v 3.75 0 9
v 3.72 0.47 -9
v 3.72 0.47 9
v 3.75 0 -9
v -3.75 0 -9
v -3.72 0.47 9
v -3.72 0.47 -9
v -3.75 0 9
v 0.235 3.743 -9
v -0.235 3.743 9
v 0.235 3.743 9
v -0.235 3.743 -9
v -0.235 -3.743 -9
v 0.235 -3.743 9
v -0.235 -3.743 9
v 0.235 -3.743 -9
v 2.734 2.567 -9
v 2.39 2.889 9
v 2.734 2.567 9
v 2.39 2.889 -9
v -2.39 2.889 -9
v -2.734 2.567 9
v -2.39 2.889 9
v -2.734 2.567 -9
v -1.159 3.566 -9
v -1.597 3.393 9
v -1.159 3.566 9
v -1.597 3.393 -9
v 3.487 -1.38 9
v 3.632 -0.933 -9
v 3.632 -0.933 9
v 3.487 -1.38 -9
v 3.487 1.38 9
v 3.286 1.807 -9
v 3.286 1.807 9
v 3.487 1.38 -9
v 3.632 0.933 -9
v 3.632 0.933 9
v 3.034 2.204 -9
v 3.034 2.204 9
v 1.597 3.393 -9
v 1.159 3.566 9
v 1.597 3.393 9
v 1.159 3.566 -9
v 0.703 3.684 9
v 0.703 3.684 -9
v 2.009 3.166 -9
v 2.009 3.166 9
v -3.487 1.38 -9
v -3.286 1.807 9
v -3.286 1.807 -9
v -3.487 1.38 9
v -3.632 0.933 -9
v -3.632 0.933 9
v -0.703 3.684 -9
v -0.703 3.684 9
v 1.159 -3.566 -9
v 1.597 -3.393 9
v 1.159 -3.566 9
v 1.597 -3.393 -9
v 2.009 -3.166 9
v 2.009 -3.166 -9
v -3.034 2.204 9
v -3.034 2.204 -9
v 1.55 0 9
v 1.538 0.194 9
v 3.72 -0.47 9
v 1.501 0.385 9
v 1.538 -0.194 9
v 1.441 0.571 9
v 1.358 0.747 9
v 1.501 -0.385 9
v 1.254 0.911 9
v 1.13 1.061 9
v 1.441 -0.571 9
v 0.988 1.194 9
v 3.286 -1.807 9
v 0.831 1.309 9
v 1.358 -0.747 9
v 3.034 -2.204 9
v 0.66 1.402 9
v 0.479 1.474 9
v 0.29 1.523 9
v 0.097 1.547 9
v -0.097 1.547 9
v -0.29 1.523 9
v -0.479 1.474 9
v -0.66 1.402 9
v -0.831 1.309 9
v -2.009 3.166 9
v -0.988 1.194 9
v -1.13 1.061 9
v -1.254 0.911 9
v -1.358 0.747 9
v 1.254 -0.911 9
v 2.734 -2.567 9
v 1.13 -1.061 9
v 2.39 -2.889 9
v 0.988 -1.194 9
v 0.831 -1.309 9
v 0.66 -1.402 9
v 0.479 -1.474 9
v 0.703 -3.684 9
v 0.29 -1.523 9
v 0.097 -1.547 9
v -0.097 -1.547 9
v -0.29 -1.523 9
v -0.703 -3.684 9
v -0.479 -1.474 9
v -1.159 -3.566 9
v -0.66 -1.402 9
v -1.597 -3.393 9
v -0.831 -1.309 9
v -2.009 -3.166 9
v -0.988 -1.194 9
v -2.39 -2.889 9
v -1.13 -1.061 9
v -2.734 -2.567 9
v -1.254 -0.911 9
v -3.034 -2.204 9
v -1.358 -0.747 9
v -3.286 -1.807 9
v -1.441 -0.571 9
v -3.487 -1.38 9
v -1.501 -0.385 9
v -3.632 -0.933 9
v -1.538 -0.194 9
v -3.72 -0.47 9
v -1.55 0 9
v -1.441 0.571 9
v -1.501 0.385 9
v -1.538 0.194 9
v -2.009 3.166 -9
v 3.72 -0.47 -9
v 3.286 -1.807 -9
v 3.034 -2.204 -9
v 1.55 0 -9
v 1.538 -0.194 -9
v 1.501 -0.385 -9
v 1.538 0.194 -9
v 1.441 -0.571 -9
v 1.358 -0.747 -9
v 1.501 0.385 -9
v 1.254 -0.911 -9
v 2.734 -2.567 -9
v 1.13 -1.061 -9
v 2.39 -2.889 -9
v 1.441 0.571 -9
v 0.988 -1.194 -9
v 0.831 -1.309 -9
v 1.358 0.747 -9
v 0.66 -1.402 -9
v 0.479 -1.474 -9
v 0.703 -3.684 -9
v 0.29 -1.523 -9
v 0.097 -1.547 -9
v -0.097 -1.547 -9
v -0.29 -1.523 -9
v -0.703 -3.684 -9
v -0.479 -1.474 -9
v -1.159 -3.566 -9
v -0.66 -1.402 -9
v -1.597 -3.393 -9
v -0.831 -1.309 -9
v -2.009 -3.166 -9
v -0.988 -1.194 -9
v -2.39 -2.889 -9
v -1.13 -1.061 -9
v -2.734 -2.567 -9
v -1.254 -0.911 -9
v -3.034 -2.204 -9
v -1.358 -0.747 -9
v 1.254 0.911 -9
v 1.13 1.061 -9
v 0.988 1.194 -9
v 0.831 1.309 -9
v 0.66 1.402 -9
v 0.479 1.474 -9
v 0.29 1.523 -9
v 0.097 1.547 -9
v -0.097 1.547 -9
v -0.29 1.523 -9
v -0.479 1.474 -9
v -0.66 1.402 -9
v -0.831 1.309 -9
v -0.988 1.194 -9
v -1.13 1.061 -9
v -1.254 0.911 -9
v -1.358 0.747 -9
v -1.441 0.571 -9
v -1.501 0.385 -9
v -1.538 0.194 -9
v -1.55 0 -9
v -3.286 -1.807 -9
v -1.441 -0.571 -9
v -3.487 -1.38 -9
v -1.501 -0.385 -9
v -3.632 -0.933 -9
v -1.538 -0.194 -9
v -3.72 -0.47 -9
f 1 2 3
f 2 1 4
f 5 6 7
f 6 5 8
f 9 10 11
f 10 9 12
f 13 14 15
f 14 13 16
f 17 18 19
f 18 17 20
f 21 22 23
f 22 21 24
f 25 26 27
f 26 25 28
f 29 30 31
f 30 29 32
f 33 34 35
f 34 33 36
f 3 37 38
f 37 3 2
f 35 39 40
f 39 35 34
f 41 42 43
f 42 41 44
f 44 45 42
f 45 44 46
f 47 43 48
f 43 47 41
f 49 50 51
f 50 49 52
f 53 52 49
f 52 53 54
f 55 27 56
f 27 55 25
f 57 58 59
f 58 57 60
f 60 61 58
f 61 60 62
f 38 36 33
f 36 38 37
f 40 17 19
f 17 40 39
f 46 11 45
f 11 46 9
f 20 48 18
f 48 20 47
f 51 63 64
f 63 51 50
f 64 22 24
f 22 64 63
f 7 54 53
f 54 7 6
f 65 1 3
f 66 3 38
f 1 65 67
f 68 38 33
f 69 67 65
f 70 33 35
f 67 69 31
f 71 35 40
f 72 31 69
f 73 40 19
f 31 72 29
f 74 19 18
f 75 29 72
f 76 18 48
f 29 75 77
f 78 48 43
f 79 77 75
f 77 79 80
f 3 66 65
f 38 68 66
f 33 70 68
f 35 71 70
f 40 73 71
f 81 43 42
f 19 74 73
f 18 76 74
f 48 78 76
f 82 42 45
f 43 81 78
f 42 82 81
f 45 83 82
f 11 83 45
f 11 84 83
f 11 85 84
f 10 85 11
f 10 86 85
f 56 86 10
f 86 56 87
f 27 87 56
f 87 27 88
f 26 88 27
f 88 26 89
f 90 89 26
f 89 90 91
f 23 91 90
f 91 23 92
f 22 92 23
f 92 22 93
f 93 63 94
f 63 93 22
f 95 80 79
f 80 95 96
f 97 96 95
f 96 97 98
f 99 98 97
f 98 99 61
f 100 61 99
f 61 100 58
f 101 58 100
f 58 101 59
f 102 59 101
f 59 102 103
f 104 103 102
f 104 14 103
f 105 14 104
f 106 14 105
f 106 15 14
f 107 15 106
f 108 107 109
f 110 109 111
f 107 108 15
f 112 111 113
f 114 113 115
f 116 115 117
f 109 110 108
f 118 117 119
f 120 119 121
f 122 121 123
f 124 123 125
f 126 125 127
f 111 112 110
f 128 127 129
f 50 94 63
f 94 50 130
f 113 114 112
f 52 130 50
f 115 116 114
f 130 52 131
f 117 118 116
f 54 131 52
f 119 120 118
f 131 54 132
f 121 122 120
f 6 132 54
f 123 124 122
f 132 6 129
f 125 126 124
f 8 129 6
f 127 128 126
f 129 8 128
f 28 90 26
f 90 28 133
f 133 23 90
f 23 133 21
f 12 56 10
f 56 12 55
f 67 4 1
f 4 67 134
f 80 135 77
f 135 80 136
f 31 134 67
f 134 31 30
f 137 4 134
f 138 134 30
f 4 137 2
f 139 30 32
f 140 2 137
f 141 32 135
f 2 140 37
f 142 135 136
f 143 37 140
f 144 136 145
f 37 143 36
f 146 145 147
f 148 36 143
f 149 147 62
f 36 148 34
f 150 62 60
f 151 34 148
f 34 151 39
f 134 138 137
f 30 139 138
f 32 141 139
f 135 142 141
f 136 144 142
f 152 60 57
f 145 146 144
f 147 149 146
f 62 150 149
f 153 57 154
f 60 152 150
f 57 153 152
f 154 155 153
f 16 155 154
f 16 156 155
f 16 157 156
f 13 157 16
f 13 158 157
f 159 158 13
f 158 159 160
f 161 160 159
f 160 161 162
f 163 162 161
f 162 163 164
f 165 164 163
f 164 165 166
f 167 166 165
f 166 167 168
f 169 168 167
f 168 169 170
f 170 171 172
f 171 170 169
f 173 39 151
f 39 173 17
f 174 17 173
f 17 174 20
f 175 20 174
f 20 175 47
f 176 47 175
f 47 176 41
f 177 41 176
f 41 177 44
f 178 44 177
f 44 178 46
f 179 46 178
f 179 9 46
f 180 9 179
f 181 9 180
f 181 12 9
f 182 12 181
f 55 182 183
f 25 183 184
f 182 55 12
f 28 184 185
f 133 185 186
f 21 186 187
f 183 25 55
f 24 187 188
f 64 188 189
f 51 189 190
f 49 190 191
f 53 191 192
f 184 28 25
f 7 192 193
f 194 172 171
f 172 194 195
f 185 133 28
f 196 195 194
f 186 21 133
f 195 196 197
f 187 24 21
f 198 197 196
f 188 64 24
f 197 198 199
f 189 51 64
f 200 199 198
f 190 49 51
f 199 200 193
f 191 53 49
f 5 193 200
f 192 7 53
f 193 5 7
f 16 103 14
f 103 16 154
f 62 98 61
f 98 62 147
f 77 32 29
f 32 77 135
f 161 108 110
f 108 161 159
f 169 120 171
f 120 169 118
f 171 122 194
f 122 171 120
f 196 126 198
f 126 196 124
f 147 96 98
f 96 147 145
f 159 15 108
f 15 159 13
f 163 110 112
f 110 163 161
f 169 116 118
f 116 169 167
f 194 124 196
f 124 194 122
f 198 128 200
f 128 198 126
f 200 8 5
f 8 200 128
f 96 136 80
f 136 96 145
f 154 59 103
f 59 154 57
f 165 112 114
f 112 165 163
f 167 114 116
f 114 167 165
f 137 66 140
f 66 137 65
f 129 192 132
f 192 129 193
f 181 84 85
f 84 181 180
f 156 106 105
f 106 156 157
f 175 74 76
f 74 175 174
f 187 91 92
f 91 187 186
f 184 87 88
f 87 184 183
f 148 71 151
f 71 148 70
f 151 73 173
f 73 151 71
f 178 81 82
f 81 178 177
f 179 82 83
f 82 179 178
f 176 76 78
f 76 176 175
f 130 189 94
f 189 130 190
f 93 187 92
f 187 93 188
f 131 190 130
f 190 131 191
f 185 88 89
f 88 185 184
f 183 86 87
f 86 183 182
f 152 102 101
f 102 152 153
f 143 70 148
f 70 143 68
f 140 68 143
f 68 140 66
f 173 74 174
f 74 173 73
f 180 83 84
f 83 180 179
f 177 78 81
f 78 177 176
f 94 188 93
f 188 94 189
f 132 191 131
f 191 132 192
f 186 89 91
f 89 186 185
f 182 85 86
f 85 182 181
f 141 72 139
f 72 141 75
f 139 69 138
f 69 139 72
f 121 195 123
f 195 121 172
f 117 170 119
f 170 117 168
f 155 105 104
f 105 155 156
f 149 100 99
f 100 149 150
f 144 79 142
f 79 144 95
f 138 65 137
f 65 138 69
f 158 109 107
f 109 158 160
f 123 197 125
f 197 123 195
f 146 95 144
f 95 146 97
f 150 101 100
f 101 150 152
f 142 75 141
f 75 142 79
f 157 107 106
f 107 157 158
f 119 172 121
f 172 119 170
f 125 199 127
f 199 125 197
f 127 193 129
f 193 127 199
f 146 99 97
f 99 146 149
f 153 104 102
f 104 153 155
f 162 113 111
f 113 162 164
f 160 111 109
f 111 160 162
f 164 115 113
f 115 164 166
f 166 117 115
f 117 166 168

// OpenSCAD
$fn = 50;


difference() {
	union() {
		translate(v = [0, 0, -9.0000000000]) {
			cylinder(h = 18, r = 3.7500000000);
		}
	}
	union() {
		translate(v = [0, 0, -100.0000000000]) {
			cylinder(h = 200, r = 1.5500000000);
		}
	}
}
